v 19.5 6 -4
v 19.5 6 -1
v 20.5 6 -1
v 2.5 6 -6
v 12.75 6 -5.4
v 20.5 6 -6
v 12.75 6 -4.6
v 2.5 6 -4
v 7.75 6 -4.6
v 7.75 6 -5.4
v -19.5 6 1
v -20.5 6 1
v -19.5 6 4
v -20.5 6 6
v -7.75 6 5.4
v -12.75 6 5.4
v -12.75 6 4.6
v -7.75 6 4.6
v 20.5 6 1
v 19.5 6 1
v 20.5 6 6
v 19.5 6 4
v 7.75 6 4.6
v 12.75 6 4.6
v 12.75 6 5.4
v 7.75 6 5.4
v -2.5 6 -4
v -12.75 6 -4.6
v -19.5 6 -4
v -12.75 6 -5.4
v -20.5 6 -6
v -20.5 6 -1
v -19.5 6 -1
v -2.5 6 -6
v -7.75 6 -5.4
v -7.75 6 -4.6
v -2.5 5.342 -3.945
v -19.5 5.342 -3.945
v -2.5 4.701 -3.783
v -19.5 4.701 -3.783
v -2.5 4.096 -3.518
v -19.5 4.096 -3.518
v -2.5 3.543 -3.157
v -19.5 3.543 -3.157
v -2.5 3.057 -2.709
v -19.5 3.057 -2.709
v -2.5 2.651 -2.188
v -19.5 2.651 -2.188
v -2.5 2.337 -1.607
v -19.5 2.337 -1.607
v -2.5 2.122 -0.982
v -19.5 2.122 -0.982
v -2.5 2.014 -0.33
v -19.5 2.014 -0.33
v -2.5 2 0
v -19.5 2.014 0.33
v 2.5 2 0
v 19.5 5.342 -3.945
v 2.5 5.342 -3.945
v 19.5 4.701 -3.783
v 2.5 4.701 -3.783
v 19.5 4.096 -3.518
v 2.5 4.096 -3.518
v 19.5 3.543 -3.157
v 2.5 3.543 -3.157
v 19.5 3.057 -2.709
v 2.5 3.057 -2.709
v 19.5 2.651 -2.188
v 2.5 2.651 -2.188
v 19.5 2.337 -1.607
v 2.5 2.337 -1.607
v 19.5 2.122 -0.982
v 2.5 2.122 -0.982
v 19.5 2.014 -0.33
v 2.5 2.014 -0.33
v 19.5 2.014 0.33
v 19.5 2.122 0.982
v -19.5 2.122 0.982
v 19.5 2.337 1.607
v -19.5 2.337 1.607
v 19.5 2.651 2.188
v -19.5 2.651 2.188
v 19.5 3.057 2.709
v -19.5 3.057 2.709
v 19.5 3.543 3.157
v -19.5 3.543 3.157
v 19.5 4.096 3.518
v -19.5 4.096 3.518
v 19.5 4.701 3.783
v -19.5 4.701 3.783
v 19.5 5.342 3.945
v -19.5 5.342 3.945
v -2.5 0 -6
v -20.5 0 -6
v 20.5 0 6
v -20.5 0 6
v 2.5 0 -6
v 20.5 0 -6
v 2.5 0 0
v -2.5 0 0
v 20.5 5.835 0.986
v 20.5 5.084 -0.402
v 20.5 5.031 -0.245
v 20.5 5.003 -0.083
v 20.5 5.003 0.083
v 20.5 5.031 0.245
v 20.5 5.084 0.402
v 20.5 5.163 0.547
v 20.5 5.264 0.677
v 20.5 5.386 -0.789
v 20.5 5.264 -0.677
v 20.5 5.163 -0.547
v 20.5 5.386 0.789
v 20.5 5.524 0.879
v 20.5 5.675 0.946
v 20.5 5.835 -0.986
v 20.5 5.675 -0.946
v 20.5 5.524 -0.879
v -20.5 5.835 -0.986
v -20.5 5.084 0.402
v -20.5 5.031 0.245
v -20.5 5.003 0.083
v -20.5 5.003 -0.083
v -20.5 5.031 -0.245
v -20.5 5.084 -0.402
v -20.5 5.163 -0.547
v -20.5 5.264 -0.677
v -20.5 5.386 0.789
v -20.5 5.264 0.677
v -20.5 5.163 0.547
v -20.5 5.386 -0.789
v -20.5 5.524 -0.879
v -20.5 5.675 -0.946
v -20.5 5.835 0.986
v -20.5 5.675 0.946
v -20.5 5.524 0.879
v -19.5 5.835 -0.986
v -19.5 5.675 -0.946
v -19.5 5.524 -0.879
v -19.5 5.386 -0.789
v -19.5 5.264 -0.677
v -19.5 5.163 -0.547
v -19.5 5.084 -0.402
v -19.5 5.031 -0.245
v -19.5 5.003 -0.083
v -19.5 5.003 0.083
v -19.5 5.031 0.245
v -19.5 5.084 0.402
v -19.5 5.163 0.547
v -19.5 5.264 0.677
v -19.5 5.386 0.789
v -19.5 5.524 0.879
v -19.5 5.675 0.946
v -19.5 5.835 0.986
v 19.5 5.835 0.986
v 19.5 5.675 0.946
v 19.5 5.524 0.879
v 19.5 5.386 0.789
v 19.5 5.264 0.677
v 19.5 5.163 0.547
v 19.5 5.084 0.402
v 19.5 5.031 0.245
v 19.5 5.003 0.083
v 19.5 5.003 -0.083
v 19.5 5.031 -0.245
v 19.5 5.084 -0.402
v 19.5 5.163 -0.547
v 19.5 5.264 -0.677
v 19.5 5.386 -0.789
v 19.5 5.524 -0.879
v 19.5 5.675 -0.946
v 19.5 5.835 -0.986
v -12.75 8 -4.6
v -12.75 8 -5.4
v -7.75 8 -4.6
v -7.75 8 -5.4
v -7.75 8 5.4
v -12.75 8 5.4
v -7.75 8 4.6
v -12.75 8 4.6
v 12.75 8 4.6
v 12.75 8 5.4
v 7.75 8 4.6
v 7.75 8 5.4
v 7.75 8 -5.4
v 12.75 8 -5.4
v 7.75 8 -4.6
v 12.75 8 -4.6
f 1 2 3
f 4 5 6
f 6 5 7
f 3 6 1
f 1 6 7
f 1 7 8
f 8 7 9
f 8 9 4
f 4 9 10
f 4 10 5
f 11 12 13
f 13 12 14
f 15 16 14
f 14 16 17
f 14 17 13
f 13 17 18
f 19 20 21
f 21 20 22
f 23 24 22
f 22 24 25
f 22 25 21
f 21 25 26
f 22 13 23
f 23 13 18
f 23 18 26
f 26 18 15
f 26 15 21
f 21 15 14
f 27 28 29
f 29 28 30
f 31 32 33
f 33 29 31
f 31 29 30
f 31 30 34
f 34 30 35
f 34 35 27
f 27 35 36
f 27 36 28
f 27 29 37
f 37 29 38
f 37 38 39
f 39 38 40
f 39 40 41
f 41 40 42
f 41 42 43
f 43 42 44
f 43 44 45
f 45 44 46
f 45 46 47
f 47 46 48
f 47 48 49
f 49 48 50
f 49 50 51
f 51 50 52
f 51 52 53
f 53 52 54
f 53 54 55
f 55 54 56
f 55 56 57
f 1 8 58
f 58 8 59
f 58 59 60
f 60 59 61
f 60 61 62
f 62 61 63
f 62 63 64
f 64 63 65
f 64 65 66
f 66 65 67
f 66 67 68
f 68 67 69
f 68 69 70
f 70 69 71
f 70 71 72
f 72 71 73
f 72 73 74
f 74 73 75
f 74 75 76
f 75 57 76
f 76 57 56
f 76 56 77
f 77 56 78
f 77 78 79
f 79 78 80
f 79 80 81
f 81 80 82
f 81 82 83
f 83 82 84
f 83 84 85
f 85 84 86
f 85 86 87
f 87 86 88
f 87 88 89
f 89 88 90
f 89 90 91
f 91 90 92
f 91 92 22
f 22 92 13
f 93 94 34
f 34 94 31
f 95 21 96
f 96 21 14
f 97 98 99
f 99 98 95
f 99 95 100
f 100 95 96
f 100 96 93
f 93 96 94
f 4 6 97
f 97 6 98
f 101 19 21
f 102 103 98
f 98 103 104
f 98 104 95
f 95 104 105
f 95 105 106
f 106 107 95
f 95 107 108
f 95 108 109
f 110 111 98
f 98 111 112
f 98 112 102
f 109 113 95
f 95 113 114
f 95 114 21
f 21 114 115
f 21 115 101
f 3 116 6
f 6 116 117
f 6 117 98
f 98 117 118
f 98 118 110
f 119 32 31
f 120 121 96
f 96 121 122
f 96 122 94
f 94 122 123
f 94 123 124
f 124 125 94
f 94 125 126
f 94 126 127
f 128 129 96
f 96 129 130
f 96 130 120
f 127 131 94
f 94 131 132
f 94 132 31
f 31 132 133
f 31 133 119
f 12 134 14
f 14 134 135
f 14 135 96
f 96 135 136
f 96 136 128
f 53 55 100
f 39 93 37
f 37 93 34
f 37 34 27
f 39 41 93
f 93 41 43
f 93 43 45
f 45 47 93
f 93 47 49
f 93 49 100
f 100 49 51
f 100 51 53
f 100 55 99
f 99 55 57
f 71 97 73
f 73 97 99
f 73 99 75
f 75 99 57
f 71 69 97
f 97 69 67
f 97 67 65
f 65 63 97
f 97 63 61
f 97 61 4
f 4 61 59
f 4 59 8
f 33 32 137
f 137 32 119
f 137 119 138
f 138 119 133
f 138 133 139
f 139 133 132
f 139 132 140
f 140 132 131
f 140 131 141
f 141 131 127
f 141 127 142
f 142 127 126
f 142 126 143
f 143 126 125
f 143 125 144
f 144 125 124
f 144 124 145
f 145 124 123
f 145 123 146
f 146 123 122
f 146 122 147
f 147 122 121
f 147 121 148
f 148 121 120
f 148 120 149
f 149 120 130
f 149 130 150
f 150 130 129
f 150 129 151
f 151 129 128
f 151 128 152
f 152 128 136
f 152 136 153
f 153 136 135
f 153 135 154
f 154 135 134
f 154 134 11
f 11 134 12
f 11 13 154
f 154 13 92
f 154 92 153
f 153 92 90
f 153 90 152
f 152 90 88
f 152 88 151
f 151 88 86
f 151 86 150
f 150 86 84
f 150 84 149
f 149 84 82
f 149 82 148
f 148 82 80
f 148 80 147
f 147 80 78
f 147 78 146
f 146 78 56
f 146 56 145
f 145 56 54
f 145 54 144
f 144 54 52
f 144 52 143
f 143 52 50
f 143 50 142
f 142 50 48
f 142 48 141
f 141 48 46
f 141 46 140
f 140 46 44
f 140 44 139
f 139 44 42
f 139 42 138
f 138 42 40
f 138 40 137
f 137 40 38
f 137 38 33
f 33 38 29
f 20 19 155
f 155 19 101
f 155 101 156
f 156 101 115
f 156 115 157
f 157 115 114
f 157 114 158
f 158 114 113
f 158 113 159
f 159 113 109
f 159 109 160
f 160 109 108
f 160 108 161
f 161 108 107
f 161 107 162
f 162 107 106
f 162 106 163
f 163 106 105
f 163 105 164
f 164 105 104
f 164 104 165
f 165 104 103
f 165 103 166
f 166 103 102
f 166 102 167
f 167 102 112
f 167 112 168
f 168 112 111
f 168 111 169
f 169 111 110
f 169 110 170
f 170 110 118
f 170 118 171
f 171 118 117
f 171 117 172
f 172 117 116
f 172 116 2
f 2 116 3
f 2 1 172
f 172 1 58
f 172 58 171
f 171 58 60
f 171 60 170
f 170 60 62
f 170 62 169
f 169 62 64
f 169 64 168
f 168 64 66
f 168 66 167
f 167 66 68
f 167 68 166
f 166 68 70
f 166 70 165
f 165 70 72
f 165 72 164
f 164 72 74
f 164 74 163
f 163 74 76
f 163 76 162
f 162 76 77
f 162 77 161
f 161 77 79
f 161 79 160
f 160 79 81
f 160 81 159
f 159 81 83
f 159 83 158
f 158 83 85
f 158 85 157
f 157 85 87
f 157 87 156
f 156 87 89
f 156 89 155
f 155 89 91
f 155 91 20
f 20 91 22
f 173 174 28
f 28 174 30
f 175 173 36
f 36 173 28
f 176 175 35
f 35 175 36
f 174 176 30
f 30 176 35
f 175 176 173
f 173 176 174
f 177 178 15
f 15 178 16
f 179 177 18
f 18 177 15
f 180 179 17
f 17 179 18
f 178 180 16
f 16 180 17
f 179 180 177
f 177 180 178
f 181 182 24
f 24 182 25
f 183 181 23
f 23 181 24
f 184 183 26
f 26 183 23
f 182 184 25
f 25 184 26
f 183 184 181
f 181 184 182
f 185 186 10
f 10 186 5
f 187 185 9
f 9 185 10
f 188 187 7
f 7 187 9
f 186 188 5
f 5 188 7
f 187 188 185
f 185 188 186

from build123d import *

# Parameters (mm, degrees)
BOSS_EXTRUDE2_DEPTH = 20.5
SKETCH4_W           = 5
SKETCH4_H           = 8.500741967
CUT_EXTRUDE1_DEPTH  = 45
BOSS_EXTRUDE4_DEPTH = 1
SKETCH3_W           = 5
SKETCH3_H           = 0.8
BOSS_EXTRUDE5_DEPTH = 2


with BuildPart() as part:
    # Sketch2 → Boss-Extrude2 (new body, symmetric)
    with BuildSketch(Plane(origin=(0, 0, 0), x_dir=(0, 0, -1), z_dir=(1, 0, 0))):
        with BuildLine():
            Line((-6, 6), (-4, 6))
            ThreePointArc((-4, 6), (0, 2), (4, 6))
            Line((4, 6), (6, 6))
            Line((6, 6), (6, 0))
            Line((6, 0), (-6, 0))
            Line((-6, 0), (-6, 6))
        make_face()
    extrude(amount=BOSS_EXTRUDE2_DEPTH, both=True)

    # Sketch4 → Cut-Extrude1 (cut)
    with BuildSketch(Plane.XZ):
        with Locations((0, -4.250370983)):
            Rectangle(SKETCH4_W, SKETCH4_H)
    extrude(amount=-CUT_EXTRUDE1_DEPTH, mode=Mode.SUBTRACT)

    # Sketch5 → Boss-Extrude4 (add)
    with BuildSketch(Plane.ZY.offset(20.5)):
        with BuildLine():
            Line((-4, 6), (-1, 6))
            ThreePointArc((-1, 6), (0, 5), (1, 6))
            Line((1, 6), (4, 6))
            ThreePointArc((4, 6), (0, 2), (-4, 6))
        make_face()
    boss_extrude4 = extrude(amount=-BOSS_EXTRUDE4_DEPTH)

    # Mirror1: Boss-Extrude4 across plane
    add(boss_extrude4.mirror(Plane(origin=(0, 0, 0), x_dir=(0, 0, 1), z_dir=(1, 0, 0))))

    # Sketch3 → Boss-Extrude5 (add)
    with BuildSketch(Plane(origin=(0, 6, 0), x_dir=(1, 0, 0), z_dir=(0, 1, 0))):
        with Locations((-10.25, 5)):
            Rectangle(SKETCH3_W, SKETCH3_H)
        with Locations((-10.25, -5)):
            Rectangle(SKETCH3_W, SKETCH3_H)
        with Locations((10.25, -5)):
            Rectangle(SKETCH3_W, SKETCH3_H)
        with Locations((10.25, 5)):
            Rectangle(SKETCH3_W, SKETCH3_H)
    extrude(amount=BOSS_EXTRUDE5_DEPTH)


solid = part.part
